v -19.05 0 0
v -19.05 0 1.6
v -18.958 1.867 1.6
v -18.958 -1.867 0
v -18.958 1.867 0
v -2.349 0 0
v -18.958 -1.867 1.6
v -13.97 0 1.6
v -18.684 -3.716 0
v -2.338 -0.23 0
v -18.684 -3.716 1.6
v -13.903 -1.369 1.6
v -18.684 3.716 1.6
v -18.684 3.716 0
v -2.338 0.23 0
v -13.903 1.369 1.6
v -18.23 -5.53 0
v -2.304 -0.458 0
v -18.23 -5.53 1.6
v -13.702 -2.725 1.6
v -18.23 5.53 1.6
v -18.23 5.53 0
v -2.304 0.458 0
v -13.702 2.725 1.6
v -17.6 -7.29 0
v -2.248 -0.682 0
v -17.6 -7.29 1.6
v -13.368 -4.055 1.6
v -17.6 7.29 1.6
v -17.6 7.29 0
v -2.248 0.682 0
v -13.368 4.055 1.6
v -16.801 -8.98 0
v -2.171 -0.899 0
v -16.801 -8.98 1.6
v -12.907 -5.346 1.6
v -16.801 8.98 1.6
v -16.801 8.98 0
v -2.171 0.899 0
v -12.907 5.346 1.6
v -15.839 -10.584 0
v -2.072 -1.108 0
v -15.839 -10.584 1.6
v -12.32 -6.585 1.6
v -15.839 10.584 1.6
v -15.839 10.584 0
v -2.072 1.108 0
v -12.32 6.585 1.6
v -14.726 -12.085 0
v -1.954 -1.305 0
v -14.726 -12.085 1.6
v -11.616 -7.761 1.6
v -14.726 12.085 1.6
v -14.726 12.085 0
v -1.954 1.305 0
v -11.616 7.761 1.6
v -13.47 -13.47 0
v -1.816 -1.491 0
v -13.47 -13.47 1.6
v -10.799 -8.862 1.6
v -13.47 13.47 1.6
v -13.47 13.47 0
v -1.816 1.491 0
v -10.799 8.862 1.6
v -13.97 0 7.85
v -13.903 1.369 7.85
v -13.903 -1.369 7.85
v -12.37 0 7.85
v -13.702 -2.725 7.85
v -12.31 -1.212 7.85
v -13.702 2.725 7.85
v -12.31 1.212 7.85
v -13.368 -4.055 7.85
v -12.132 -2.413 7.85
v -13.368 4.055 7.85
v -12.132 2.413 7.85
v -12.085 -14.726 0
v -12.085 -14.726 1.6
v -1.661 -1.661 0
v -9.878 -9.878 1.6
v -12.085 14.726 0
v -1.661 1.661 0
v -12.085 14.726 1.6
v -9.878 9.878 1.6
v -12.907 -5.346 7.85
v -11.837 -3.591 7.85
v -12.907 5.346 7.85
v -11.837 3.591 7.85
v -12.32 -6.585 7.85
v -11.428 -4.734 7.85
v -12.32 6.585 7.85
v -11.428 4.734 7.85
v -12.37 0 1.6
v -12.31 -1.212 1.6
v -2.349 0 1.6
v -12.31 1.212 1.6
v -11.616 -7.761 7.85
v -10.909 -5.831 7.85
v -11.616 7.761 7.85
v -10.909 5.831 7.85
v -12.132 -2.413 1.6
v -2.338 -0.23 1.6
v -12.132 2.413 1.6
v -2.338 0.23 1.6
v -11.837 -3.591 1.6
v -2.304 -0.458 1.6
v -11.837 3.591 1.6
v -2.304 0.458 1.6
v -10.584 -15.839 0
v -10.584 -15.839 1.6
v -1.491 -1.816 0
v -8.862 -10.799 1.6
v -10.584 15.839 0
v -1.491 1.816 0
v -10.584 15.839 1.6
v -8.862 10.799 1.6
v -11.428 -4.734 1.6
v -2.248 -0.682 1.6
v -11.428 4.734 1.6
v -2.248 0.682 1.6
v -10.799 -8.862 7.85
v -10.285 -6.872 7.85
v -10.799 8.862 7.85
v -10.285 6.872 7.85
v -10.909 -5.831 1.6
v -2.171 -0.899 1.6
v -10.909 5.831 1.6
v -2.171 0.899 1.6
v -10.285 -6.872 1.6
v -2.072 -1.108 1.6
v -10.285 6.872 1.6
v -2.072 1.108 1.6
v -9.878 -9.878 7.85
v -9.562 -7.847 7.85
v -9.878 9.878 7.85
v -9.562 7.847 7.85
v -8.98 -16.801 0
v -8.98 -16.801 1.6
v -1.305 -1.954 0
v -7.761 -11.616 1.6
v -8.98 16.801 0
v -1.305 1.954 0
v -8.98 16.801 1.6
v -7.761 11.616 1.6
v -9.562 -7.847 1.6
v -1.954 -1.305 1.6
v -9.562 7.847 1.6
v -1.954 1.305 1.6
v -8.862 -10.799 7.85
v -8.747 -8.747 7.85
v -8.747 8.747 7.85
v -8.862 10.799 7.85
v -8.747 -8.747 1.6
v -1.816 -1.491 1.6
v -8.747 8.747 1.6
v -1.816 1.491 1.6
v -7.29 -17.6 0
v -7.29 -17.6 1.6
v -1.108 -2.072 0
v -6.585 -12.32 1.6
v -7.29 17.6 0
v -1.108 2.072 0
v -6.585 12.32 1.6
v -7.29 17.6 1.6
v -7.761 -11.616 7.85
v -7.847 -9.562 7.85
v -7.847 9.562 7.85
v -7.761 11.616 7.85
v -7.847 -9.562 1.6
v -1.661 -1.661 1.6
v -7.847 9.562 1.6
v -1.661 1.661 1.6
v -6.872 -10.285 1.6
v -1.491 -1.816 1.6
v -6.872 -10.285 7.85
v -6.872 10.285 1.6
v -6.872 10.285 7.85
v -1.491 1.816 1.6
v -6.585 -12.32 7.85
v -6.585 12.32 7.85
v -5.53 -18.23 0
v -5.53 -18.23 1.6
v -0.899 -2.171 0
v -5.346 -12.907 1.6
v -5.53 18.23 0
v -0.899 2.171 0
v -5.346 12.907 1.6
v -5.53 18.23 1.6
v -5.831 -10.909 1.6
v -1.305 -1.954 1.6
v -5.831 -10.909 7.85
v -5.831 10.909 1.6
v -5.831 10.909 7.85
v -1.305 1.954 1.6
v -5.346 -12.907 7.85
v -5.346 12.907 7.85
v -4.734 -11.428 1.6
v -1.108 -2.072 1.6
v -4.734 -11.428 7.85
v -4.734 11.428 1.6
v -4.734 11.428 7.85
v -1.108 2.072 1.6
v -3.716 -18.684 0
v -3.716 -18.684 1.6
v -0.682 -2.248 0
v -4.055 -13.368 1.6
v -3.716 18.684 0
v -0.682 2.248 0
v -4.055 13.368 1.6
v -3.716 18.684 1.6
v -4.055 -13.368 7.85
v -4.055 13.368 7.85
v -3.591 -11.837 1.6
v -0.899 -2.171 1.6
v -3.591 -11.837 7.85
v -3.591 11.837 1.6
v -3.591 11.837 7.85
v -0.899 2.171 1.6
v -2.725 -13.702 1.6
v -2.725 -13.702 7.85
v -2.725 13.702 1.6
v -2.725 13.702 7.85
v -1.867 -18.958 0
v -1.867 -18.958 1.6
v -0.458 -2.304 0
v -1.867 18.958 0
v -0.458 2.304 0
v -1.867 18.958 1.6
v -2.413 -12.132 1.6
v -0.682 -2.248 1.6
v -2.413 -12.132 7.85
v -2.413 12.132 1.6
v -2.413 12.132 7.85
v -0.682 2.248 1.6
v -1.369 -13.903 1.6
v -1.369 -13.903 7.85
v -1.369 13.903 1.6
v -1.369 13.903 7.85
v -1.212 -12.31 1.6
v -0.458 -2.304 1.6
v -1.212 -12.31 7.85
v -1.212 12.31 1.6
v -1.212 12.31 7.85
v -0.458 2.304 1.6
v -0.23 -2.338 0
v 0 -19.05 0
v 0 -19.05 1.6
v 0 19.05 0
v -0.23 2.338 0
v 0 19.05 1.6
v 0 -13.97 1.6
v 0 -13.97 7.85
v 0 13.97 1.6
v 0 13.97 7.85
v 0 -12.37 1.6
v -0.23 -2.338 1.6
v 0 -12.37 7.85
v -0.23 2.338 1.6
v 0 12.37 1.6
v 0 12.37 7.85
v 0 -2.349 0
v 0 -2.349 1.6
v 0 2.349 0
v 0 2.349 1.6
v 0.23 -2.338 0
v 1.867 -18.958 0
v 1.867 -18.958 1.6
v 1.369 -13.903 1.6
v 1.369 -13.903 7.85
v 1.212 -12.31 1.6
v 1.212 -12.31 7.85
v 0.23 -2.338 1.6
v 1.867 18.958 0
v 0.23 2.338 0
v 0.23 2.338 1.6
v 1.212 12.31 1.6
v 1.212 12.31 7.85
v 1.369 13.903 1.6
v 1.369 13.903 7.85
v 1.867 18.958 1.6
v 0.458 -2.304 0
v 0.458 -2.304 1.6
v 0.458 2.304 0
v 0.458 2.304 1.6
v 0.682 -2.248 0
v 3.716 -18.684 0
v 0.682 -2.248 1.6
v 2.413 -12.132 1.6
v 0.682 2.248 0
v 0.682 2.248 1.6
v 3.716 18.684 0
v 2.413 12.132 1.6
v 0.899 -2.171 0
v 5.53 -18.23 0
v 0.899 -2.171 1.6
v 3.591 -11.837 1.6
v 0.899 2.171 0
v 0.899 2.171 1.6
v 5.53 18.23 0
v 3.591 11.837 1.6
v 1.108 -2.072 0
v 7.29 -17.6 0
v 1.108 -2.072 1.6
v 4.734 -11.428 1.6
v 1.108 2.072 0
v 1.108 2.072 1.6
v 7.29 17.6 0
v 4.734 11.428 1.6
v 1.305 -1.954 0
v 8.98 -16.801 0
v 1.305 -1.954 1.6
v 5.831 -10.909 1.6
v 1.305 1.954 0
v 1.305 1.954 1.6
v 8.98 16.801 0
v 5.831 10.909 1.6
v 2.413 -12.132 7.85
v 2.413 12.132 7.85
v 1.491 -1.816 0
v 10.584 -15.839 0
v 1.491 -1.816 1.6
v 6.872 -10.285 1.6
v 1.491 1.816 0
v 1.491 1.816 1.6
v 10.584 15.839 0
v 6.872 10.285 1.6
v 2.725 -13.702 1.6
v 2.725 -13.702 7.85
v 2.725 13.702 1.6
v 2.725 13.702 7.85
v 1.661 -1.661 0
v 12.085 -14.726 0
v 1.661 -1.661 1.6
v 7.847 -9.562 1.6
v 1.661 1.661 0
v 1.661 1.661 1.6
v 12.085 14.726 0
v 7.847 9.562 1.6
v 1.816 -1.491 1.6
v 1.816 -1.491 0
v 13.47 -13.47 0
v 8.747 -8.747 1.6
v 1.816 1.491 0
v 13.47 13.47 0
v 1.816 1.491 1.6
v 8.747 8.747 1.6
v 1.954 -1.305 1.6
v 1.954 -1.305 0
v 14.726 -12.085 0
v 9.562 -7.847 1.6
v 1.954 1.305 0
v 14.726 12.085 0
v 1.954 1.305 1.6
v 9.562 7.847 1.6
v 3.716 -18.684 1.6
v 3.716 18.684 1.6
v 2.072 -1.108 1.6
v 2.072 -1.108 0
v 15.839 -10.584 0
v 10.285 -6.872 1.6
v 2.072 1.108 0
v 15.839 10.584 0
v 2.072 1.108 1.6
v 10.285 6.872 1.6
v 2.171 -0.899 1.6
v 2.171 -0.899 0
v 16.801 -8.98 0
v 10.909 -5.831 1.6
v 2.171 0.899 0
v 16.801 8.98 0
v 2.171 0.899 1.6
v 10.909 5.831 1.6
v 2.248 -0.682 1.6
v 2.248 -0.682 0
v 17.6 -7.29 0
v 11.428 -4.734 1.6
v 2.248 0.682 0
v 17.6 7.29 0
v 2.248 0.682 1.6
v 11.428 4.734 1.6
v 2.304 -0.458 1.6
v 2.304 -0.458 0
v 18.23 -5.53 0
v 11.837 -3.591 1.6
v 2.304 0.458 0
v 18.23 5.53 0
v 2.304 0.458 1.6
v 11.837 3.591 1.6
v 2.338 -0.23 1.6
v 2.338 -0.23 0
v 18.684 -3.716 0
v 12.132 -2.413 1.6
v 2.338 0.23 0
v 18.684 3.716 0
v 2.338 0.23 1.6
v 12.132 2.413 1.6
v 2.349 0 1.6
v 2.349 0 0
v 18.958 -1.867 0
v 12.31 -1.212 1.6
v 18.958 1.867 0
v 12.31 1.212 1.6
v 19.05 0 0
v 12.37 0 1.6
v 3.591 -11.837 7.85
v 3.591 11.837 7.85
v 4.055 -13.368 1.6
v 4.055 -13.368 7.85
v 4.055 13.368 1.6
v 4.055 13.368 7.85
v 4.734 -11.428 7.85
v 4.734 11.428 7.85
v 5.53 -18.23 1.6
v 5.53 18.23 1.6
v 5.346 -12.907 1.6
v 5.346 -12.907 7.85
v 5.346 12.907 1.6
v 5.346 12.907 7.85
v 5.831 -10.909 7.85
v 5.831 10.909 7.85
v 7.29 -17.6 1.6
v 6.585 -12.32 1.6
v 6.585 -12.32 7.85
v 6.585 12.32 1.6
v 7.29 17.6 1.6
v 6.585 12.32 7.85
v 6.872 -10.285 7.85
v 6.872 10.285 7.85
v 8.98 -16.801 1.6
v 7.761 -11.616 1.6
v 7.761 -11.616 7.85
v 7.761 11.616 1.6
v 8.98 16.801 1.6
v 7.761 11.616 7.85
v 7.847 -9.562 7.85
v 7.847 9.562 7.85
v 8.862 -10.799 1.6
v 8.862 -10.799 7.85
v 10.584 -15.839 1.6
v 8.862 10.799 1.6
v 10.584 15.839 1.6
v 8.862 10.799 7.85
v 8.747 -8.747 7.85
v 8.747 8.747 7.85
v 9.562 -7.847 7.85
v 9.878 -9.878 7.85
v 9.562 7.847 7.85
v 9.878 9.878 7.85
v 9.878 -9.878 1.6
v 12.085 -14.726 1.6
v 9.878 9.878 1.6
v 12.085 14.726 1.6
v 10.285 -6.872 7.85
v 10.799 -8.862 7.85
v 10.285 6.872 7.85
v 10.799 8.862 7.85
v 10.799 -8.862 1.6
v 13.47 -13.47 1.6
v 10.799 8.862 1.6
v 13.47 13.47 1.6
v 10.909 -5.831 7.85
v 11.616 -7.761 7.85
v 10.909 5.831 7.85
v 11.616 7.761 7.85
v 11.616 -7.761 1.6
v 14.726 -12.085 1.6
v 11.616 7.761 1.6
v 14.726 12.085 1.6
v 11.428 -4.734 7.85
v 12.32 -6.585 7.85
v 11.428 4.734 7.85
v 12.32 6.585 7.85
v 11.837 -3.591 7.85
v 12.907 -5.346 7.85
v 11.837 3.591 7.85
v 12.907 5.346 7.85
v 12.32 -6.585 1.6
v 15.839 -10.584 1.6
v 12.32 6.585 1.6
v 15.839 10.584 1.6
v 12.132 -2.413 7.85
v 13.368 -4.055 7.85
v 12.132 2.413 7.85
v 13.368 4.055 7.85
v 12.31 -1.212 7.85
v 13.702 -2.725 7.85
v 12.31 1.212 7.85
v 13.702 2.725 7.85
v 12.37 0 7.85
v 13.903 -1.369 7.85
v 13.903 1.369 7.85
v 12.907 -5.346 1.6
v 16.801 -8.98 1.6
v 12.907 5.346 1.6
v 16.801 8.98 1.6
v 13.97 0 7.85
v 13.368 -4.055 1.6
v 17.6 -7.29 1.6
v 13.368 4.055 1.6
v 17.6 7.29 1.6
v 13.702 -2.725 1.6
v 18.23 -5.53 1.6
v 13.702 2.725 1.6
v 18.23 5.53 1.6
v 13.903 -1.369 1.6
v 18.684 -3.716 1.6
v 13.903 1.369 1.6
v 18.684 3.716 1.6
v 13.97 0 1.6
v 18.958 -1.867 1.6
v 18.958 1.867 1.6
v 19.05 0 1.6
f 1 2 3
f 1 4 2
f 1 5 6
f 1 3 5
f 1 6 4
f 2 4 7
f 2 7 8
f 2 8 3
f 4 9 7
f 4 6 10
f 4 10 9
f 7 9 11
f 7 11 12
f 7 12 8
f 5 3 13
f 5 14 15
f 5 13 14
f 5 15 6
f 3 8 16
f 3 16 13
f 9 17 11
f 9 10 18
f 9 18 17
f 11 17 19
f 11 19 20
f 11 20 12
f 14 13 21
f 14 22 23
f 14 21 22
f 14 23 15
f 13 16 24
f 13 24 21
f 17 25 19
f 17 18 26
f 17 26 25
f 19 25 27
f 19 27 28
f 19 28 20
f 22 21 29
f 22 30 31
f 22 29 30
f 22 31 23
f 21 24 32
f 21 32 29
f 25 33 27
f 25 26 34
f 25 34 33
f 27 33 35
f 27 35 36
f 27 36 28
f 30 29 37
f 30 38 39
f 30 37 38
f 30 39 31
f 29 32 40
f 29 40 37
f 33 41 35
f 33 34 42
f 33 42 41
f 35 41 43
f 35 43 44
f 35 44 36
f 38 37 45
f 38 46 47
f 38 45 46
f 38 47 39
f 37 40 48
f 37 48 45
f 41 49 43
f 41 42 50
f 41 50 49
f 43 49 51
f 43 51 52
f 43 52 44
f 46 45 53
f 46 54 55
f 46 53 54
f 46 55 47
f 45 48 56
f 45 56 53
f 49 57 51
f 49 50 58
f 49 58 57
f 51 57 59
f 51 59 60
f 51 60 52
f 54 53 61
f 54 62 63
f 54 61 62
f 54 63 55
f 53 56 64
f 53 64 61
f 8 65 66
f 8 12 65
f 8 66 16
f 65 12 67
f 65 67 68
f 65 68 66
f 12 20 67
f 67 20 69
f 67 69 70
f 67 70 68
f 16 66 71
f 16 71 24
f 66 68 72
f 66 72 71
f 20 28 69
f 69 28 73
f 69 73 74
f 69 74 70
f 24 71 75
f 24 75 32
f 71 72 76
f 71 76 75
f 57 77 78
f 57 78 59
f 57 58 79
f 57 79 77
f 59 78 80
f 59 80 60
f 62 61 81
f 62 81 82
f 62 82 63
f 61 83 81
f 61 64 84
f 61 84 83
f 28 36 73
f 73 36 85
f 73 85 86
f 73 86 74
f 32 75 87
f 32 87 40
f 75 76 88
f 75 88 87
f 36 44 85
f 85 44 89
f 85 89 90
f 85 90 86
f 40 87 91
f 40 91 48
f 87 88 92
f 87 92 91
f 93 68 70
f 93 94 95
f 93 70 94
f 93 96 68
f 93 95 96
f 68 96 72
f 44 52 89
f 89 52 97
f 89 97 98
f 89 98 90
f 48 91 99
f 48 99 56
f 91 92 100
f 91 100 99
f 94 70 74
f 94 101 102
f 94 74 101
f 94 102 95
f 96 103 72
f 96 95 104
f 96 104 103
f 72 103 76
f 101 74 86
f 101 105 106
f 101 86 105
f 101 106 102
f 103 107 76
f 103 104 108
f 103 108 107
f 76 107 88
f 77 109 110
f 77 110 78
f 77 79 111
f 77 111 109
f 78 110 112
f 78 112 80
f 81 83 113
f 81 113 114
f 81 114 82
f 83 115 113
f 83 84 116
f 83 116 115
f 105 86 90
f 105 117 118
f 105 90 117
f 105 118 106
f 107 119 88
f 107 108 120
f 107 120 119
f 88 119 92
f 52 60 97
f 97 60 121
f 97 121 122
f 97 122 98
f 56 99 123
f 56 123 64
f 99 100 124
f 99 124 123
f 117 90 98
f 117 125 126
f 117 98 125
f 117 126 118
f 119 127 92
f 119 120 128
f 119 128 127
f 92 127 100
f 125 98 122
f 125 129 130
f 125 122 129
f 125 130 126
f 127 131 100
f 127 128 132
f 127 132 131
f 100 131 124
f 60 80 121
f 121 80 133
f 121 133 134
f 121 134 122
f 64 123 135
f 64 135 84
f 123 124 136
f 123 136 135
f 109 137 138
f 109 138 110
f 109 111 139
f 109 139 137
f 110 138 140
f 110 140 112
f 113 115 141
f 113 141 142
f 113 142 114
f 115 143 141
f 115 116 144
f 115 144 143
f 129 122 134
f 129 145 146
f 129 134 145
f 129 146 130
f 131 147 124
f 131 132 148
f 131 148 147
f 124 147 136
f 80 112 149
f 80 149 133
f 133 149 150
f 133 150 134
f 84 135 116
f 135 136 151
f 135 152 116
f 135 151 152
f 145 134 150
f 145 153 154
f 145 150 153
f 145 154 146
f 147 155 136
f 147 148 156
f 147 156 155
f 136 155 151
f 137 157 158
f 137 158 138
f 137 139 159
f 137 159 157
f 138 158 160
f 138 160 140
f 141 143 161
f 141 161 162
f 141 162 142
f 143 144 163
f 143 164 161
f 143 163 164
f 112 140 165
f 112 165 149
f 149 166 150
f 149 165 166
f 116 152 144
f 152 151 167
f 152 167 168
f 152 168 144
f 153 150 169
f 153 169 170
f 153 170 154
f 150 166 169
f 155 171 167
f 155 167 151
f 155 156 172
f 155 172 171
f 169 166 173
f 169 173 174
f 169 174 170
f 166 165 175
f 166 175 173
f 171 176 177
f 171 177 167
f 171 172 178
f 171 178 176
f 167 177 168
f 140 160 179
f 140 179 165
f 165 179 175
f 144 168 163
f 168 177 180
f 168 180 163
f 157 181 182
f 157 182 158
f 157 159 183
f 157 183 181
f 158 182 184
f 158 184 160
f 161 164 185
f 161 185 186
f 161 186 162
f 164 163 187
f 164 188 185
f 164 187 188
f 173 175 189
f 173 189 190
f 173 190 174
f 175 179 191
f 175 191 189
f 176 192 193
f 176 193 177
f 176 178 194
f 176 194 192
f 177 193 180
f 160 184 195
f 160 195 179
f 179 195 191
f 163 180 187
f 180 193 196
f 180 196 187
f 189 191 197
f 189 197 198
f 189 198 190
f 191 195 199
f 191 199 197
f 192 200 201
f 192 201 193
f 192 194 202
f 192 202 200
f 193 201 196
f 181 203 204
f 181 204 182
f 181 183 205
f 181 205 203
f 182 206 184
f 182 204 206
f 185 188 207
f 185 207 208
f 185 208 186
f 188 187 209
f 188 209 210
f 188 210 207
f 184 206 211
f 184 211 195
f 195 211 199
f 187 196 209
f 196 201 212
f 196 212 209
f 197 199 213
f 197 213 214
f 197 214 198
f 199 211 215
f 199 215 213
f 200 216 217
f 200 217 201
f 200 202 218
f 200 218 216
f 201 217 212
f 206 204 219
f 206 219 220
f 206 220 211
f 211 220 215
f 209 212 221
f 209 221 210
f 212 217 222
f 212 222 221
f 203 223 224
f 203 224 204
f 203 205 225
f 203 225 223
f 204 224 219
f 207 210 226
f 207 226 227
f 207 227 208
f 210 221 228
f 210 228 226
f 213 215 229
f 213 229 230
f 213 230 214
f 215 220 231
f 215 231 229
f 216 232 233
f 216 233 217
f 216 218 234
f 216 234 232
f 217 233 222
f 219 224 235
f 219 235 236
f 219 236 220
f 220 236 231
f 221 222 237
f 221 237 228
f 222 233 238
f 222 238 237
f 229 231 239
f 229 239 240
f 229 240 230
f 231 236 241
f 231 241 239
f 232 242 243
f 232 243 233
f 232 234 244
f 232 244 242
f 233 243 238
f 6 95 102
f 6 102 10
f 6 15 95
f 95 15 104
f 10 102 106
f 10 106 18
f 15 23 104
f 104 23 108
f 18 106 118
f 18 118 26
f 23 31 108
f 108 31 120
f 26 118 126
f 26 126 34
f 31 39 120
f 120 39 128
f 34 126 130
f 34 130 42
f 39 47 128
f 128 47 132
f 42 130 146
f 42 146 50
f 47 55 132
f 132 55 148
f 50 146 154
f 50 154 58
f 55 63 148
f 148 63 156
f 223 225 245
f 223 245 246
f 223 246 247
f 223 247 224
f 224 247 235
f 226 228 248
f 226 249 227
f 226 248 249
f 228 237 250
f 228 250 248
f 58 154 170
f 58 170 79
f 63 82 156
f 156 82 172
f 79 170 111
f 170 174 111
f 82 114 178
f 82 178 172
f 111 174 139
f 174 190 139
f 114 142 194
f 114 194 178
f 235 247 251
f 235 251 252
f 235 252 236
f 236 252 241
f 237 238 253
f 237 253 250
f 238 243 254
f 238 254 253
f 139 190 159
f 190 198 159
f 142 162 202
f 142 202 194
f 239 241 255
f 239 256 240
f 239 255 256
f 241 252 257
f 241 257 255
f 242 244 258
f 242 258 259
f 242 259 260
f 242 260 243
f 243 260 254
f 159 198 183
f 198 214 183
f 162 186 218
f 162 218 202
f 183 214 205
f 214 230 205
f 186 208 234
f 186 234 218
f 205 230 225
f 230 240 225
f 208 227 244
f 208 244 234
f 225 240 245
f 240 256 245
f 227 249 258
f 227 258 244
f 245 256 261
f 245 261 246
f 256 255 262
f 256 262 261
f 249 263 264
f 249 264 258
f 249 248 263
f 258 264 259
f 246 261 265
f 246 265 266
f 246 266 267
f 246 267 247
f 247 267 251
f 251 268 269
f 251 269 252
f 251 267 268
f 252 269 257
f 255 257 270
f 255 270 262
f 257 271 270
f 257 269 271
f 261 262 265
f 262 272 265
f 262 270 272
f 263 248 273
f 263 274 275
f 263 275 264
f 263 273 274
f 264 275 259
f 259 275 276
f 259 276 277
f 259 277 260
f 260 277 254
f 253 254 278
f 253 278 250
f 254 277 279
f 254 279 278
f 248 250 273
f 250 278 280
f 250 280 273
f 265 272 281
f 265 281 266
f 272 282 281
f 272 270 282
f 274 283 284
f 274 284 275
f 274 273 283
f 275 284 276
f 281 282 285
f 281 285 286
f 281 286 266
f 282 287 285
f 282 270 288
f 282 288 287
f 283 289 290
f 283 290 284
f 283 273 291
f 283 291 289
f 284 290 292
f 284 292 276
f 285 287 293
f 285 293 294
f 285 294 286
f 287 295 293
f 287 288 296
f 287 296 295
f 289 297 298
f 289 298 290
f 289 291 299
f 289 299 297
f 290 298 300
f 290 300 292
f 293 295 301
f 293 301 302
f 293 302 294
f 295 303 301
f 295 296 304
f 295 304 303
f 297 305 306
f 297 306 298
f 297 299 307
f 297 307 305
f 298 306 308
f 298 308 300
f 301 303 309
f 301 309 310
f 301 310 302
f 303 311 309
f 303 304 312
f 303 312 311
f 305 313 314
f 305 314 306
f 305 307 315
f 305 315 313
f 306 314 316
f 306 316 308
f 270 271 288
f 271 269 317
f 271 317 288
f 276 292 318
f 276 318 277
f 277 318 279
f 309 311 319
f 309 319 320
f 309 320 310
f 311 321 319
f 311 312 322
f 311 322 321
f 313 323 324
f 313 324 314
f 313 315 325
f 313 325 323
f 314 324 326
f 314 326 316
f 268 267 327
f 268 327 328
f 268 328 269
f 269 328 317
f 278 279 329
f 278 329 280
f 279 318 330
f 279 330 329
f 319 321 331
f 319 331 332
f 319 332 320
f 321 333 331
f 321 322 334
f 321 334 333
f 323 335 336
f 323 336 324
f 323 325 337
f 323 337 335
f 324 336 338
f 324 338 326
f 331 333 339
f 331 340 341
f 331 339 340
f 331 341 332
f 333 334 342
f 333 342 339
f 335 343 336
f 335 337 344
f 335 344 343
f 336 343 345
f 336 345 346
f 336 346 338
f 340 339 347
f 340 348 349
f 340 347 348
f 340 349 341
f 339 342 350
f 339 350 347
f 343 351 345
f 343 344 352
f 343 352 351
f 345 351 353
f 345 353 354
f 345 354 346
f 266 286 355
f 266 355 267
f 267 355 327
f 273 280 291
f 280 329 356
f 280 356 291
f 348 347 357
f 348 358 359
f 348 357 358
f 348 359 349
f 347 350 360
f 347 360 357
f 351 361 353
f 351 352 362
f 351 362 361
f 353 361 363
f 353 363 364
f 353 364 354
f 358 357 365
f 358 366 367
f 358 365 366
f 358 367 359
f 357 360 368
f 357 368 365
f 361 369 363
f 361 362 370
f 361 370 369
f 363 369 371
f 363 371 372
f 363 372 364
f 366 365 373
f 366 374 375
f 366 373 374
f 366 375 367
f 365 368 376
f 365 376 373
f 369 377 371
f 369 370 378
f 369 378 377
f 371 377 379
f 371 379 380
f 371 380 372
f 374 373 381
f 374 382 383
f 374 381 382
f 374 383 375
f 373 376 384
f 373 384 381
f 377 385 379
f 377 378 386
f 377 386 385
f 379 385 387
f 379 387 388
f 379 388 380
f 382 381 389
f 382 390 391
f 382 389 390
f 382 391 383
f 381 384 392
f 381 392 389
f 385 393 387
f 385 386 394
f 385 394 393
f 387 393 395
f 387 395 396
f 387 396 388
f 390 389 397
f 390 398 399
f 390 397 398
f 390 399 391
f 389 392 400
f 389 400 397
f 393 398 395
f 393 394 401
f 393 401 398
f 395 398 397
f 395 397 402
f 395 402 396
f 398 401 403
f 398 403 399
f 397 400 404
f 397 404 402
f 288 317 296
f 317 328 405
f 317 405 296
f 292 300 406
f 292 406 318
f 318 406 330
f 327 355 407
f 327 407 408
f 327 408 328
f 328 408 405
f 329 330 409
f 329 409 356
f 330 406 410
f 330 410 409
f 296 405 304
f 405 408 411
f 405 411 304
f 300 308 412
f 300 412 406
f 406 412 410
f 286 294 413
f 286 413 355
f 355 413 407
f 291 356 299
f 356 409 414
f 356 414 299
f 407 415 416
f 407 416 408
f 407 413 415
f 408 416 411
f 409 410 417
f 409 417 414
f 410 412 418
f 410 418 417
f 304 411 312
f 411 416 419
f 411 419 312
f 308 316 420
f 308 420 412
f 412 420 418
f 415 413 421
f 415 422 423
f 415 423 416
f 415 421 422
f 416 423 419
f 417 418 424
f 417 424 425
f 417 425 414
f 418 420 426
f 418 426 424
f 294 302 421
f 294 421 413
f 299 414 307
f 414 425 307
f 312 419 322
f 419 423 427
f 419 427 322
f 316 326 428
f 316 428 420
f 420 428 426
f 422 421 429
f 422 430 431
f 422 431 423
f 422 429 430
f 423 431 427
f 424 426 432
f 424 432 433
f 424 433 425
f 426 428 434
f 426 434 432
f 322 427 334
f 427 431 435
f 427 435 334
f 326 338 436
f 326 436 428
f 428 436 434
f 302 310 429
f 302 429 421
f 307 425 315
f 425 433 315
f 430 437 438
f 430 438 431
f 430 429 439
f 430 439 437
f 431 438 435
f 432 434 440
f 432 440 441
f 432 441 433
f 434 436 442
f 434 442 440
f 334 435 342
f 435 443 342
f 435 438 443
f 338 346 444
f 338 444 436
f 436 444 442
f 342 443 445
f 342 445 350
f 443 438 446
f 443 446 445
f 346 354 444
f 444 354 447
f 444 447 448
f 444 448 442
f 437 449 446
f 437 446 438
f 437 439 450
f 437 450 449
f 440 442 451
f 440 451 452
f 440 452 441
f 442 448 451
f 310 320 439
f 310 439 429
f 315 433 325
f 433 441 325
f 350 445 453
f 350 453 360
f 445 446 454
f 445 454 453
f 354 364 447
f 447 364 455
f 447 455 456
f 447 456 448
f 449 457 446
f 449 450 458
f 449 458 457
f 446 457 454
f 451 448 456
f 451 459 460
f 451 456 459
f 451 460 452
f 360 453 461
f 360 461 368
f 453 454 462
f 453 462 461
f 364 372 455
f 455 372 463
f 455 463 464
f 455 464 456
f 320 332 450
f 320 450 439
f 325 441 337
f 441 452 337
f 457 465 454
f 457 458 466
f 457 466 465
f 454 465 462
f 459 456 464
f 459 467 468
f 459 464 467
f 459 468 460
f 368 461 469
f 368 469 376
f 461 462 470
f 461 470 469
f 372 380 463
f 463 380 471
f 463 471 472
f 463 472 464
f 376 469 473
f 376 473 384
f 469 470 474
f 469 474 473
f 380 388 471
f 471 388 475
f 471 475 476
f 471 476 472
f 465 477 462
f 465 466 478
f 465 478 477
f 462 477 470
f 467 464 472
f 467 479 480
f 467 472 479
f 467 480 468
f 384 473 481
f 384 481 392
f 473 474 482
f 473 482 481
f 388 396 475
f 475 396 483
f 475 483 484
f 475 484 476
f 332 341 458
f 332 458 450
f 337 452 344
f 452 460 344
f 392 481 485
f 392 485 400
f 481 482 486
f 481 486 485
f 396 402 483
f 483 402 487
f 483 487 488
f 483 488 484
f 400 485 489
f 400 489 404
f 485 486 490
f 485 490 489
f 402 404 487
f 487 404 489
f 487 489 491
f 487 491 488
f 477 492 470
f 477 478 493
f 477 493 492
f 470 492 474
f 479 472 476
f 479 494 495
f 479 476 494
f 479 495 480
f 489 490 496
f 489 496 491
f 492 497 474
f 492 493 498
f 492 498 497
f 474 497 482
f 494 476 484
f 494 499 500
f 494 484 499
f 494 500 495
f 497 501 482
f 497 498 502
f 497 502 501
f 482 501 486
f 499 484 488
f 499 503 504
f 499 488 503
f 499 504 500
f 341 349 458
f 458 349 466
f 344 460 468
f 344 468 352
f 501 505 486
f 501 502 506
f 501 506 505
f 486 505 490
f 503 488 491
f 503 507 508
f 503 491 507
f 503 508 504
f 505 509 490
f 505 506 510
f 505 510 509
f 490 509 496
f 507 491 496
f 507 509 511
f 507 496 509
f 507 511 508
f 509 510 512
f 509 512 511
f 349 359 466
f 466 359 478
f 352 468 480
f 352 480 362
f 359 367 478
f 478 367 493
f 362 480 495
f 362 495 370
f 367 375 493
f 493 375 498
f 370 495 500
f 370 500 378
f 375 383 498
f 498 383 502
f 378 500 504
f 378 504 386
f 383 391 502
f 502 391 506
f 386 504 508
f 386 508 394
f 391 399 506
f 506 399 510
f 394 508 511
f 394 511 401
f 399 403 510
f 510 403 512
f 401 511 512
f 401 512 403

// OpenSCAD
//
// plug/cap for winding spools using long 8-32 screw
//
// --------------------------------------------------------------------------------
// ---------------------------==+####***********####*+==---------------------------
// ----------------------=+###*+---::::::------------=+*###+=----------------------
// -------------------+###+--------::::::---------------===+###+-------------------
// -----------------*##+-----------::::::---------------======+##*-----------------
// ---------------*##+=------------::::::---------------========+##*---------------
// --------------###===------------::::::---------------==========###--------------
// ------------+###====---------=**#################*+=-===========###+------------
// ----------######====----=##############################=========######----------
// --------*#######====-=####################################+=====#######*--------
// ------+######*###==+########################################+==*##*######+------
// -----+#######**##################################################*+#######*-----
// ----=########***####################*=::--+*####################++*########+----
// ----#########******################*-------=*################*++++*#########----
// ---=##########****+++*##############*=----=*##############*===++++*#########=---
// ----##########****+++++++**##########################*+======+++++##########=---
// ----##########****++++++++++++++++++**####**+===------=======++++*##########----
// ----+###########**++++++++++++=========--------------========+++*##########+----
// -----*###########*+++++++++++++========--------------========+*###########+-----
// -----=*#############+++++++++++========--------------=======#############+=-----
// -------**##############++++++++========--------------====##############++-------
// --------+**################*+++========-----------=+*###############*++=--------
// ----------+++*#######################******#######################+===----------
// ------------=++++*############################################*====-------------
// ----------------=+++++*#################################*++=====----------------
// --------------------=+++++++++**################*++==-----=---------------------
// --------------------------=============-----------------------------------------

$fn=64;
mm=25.4;
e=0.1;

inner_dia=1.1*mm;
outer_dia =1.5*mm;
thick=1.6;

hub_len=0.25*mm;

hole_dia = 0.185*mm;

module plug() {
     difference() {
	  cylinder( h=thick, d=outer_dia);
	  translate( [0, 0, -e])
	       cylinder( d=hole_dia, h=10);
     }
     translate( [0, 0, thick-e]) {
	  difference() {
	       cylinder( d=inner_dia, h=hub_len);
	       translate( [0, 0, -e])
	       cylinder( d=inner_dia-2*thick, h=hub_len+2*e);
	  }
     }
}


plug();
